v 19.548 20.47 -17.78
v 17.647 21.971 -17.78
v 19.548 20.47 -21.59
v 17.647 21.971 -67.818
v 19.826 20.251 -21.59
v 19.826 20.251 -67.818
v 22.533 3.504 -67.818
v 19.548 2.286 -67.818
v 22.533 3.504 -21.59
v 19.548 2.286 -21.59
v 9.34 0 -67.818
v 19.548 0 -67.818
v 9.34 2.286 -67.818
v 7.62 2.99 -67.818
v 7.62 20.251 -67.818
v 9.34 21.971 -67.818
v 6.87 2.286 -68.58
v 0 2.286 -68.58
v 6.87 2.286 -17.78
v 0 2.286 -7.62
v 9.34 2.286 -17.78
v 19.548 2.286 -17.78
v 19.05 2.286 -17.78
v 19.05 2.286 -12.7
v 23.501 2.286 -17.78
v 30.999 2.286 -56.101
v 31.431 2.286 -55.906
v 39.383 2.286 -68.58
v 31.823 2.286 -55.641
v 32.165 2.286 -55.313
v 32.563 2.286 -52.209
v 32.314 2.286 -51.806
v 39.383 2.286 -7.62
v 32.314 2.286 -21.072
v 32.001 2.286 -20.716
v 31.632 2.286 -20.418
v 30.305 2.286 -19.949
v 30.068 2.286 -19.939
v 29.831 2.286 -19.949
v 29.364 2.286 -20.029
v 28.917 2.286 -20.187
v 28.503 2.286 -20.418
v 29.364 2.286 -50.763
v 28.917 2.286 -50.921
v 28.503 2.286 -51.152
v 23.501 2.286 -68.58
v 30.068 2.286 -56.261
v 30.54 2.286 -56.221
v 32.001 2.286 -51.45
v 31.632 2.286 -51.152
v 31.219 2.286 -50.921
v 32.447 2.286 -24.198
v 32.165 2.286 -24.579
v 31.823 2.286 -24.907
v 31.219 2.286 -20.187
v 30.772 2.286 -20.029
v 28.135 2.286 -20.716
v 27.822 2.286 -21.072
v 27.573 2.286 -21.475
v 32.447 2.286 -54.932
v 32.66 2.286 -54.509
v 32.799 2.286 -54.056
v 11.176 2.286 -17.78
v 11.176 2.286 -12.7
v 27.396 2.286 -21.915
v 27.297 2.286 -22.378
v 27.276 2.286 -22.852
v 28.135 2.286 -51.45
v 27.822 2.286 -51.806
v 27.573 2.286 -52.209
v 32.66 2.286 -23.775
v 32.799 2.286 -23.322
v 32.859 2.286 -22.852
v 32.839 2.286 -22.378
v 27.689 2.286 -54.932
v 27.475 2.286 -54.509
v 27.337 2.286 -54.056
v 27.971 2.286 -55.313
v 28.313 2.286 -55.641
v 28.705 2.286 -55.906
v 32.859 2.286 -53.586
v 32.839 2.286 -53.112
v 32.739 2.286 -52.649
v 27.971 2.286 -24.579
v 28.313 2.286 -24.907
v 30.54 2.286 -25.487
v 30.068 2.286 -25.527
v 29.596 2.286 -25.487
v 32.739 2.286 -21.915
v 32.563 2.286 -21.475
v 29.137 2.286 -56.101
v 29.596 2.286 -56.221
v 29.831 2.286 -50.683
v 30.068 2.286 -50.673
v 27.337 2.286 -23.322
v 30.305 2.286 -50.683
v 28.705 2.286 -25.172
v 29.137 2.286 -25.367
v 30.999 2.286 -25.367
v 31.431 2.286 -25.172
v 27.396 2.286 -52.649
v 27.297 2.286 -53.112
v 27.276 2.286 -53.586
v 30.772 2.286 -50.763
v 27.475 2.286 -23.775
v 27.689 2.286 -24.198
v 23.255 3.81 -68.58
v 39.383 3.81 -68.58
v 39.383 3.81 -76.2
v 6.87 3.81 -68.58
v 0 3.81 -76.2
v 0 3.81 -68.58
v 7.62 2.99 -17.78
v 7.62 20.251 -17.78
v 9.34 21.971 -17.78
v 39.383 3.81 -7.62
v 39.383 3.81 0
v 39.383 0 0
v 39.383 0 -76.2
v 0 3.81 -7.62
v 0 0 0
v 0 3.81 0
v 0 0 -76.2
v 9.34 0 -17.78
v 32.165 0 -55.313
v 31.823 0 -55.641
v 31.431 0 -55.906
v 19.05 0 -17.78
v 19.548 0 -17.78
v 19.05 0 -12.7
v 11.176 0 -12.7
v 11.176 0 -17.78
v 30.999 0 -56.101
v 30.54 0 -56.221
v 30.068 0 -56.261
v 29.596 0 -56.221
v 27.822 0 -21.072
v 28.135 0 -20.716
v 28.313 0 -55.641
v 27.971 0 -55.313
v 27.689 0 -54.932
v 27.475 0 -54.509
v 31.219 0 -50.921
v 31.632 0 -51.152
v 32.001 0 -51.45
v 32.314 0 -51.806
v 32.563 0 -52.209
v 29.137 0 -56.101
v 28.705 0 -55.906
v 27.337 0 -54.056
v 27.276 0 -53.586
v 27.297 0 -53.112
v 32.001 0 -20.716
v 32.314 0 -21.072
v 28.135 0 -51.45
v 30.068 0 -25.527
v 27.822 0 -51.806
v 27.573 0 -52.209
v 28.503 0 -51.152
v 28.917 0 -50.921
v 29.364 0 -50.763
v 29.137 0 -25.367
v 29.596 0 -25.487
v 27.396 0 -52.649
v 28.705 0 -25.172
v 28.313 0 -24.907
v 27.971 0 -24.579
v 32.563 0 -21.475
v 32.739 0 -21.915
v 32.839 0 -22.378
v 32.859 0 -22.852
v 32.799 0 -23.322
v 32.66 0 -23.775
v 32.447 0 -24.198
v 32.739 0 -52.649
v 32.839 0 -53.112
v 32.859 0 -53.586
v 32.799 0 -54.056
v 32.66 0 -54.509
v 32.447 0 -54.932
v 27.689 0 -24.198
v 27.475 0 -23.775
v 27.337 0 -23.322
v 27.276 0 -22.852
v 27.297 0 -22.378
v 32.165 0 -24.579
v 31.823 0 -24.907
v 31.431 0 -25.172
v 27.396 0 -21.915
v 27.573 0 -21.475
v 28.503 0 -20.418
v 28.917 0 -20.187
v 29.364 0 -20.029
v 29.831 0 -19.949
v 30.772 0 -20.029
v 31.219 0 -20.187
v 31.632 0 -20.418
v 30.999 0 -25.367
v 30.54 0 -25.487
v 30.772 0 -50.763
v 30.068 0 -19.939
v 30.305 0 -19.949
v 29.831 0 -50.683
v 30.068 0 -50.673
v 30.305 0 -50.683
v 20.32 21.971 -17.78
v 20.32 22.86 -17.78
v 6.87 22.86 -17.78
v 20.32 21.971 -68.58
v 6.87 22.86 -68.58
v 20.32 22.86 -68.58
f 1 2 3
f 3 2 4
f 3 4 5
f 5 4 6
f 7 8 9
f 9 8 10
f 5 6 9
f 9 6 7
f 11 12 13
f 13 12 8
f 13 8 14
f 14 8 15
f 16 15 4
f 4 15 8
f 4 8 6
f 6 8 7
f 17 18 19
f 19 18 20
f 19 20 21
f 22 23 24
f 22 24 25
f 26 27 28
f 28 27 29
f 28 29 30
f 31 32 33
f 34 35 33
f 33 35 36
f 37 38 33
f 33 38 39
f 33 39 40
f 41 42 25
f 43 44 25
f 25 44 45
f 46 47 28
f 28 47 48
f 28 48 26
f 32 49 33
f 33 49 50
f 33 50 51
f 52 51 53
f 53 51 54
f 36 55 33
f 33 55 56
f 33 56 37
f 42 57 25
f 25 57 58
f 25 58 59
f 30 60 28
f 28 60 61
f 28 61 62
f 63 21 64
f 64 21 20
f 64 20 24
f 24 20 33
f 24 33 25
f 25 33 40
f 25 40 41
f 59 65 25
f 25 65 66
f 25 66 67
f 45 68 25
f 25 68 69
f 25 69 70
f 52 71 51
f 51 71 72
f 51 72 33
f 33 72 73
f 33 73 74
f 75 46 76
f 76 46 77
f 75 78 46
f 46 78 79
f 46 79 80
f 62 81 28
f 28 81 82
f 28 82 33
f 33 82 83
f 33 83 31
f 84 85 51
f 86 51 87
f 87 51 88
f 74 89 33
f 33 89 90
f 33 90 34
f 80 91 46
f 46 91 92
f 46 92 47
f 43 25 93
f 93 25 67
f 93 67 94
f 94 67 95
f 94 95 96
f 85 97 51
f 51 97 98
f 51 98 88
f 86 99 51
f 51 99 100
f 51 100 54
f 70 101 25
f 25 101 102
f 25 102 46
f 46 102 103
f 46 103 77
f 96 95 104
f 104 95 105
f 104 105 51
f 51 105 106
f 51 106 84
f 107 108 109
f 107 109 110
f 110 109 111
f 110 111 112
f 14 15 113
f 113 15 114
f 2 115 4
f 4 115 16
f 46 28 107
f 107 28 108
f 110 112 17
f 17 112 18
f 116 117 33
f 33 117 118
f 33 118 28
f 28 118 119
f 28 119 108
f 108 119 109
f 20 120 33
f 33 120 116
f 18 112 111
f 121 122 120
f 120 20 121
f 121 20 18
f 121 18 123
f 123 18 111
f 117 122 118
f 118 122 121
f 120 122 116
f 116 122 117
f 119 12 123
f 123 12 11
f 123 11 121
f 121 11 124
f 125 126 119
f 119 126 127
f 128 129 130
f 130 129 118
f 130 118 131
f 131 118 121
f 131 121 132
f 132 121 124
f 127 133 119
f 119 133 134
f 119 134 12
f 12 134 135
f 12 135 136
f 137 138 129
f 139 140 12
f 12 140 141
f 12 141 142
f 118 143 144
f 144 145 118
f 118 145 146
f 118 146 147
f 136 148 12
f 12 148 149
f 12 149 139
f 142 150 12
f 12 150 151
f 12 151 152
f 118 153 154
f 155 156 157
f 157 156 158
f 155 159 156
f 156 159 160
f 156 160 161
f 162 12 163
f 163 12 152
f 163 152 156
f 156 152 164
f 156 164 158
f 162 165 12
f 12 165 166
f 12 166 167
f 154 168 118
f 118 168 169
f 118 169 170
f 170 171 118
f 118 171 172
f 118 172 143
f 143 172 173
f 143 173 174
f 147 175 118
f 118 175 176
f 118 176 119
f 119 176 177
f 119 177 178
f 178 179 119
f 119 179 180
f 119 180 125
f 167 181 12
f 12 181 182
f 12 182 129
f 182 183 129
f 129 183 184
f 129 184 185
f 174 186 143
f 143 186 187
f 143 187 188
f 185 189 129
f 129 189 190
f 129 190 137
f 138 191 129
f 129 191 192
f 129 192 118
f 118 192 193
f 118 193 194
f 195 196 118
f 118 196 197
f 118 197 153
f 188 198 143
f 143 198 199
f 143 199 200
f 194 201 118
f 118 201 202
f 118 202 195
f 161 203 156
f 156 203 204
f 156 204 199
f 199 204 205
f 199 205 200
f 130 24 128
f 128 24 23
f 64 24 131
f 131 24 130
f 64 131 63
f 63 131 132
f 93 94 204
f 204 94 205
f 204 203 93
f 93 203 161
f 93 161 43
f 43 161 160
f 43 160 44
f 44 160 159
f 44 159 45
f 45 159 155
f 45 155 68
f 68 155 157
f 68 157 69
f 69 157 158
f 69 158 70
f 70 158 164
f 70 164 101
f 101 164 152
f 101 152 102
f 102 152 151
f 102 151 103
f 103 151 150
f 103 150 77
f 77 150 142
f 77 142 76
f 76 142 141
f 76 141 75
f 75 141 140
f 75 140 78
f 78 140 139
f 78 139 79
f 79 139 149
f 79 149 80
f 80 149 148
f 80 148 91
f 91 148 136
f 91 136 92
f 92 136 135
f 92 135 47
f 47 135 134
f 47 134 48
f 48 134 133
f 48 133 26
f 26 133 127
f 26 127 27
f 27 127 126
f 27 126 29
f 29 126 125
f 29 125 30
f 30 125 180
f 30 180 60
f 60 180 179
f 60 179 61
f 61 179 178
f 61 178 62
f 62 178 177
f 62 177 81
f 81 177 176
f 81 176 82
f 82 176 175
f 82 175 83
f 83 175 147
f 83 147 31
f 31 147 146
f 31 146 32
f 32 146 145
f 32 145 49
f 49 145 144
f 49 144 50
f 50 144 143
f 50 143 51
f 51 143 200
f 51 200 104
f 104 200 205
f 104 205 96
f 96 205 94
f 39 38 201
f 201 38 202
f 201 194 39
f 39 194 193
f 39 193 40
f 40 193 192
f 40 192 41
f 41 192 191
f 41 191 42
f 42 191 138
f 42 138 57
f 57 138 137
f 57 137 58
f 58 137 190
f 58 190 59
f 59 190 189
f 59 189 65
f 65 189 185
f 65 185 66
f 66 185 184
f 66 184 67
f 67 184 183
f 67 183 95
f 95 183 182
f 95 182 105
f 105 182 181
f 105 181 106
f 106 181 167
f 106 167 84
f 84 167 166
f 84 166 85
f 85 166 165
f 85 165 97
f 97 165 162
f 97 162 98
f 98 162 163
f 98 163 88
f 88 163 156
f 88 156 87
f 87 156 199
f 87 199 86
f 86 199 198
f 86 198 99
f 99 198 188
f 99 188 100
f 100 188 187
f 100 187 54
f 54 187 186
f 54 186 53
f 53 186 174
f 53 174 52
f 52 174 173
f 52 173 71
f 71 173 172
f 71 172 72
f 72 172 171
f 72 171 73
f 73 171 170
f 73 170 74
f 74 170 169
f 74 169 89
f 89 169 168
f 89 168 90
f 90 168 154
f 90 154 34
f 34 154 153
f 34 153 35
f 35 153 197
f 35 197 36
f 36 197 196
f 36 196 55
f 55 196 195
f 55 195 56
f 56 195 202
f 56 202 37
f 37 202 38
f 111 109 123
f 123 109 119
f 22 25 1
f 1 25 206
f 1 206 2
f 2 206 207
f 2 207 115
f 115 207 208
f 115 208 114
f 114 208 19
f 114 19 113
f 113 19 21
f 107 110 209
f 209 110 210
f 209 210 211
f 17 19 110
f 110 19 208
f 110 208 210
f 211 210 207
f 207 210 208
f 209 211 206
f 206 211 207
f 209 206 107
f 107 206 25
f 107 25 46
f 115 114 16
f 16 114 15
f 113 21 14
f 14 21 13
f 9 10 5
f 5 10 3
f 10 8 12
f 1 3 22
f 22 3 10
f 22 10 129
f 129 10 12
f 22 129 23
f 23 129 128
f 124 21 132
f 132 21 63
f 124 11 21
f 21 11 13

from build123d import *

# Parameters (mm, degrees)
BOSS_EXTRUDE2_DEPTH   = 3.81
BOSS_EXTRUDE2_2_DEPTH = 3.81
SKETCH2_3_W           = 39.3827
SKETCH2_3_H           = 60.96
SKETCH2_3_R           = 2.794
SKETCH2_3_W_2         = 7.874
SKETCH2_3_H_2         = 50.8
BOSS_EXTRUDE3_DEPTH   = 2.286
SKETCH2_4_W           = 0.75
SKETCH2_4_H           = 50.8
BOSS_EXTRUDE4_DEPTH   = 22.86
SKETCH4_W             = 50.8
SKETCH4_H             = 0.889
BOSS_EXTRUDE5_DEPTH   = 12.7
BOSS_EXTRUDE7_DEPTH   = 0.762
BOSS_EXTRUDE8_DEPTH   = 50.8
BOSS_EXTRUDE11_START  = 46.99
BOSS_EXTRUDE11_DEPTH  = 3.81
SKETCH8_W             = 10.208213857
SKETCH8_H             = 50.038
CUT_EXTRUDE2_DEPTH    = 89.208426668


# Read off the part's stored shape, not the designer's step: Boss-Extrude8
with BuildPart() as part:
    # Sketch2 → Boss-Extrude2 (new body)
    with BuildSketch(Plane(origin=(0, 0, 0), x_dir=(1, 0, 0), z_dir=(0, 1, 0))):
        Polygon((0, 7.62), (0, 0), (39.3827, 0), (39.3827, 7.62), (7.62, 7.62), (6.87, 7.62), align=None)
    extrude(amount=BOSS_EXTRUDE2_DEPTH)



with BuildPart() as body_2:
    # Sketch2 → Boss-Extrude2 2 (new body)
    with BuildSketch(Plane(origin=(0, 0, 0), x_dir=(1, 0, 0), z_dir=(0, 1, 0))):
        Polygon((0, 76.2), (0, 68.58), (6.87, 68.58), (7.62, 68.58), (39.3827, 68.58), (39.3827, 76.2), align=None)
    extrude(amount=BOSS_EXTRUDE2_2_DEPTH)


with BuildPart() as part_1:
    add(part.part)

    add(body_2.part)  # Boss-Extrude3 merges body 2
    # Sketch2<3> → Boss-Extrude3 (add)
    with BuildSketch(Plane(origin=(0, 0, 0), x_dir=(1, 0, 0), z_dir=(0, 1, 0))):
        with Locations((19.69135, 38.1)):
            Rectangle(SKETCH2_3_W, SKETCH2_3_H)
        with Locations(Location((30.067932262, 53.467, 0), (0, 0, 270))):
            Circle(SKETCH2_3_R, mode=Mode.SUBTRACT)
        with Locations((15.113, 38.1)):
            Rectangle(SKETCH2_3_W_2, SKETCH2_3_H_2, mode=Mode.SUBTRACT)
        with Locations(Location((30.067932262, 22.733, 0), (0, 0, 270))):
            Circle(SKETCH2_3_R, mode=Mode.SUBTRACT)
    extrude(amount=BOSS_EXTRUDE3_DEPTH)

    # Sketch2<4> → Boss-Extrude4 (add)
    with BuildSketch(Plane(origin=(0, 0, 0), x_dir=(1, 0, 0), z_dir=(0, 1, 0))):
        with Locations((7.245, 43.18)):
            Rectangle(SKETCH2_4_W, SKETCH2_4_H)
    extrude(amount=BOSS_EXTRUDE4_DEPTH)

    # Sketch4 → Boss-Extrude5 (add)
    with BuildSketch(Plane(origin=(7.62, 0, 0), x_dir=(0, 0, -1), z_dir=(1, 0, 0))):
        with Locations((43.18, 22.4155)):
            Rectangle(SKETCH4_W, SKETCH4_H)
    extrude(amount=BOSS_EXTRUDE5_DEPTH)

    # Sketch6 → Boss-Extrude7 (add)
    with BuildSketch(Plane.XY.offset(-68.58)):
        Polygon((7.62, 2.286), (23.50135, 2.286), (23.255051935, 3.81), (22.483164843, 3.81), (19.548112907, 21.971), (7.62, 21.971), align=None)
    extrude(amount=BOSS_EXTRUDE7_DEPTH)

    # Boss-Extrude8 outline → Boss-Extrude8 (add)
    with BuildSketch(Plane.XY.offset(-68.58)):
        Polygon((20.32, 21.971), (17.64673175, 21.971), (19.826070786, 20.25110095), (22.532645041, 3.503835102), (19.548112907, 2.286), (23.50135, 2.286), align=None)
        Polygon((7.62, 20.25110095), (9.33989905, 21.971), (7.62, 21.971), align=None)
        Polygon((7.62, 2.286), (9.33989905, 2.286), (7.62, 2.98989905), align=None)
    extrude(amount=BOSS_EXTRUDE8_DEPTH)

    # Sketch6<6> → Boss-Extrude11 (add)
    with BuildSketch(Plane.XY.offset(-68.58).offset(BOSS_EXTRUDE11_START)):
        Polygon((19.548112907, 20.470460804), (19.548112907, 2.286), (22.532645041, 3.503835102), (19.826070786, 20.25110095), align=None)
    extrude(amount=BOSS_EXTRUDE11_DEPTH)

    # Sketch8 → Cut-Extrude2 (cut, through all)
    with BuildSketch(Plane(origin=(0, 2.286, 0), x_dir=(1, 0, 0), z_dir=(0, 1, 0))):
        with Locations((14.444005979, 42.799)):
            Rectangle(SKETCH8_W, SKETCH8_H)
    extrude(amount=-CUT_EXTRUDE2_DEPTH, mode=Mode.SUBTRACT)


solid = part_1.part
